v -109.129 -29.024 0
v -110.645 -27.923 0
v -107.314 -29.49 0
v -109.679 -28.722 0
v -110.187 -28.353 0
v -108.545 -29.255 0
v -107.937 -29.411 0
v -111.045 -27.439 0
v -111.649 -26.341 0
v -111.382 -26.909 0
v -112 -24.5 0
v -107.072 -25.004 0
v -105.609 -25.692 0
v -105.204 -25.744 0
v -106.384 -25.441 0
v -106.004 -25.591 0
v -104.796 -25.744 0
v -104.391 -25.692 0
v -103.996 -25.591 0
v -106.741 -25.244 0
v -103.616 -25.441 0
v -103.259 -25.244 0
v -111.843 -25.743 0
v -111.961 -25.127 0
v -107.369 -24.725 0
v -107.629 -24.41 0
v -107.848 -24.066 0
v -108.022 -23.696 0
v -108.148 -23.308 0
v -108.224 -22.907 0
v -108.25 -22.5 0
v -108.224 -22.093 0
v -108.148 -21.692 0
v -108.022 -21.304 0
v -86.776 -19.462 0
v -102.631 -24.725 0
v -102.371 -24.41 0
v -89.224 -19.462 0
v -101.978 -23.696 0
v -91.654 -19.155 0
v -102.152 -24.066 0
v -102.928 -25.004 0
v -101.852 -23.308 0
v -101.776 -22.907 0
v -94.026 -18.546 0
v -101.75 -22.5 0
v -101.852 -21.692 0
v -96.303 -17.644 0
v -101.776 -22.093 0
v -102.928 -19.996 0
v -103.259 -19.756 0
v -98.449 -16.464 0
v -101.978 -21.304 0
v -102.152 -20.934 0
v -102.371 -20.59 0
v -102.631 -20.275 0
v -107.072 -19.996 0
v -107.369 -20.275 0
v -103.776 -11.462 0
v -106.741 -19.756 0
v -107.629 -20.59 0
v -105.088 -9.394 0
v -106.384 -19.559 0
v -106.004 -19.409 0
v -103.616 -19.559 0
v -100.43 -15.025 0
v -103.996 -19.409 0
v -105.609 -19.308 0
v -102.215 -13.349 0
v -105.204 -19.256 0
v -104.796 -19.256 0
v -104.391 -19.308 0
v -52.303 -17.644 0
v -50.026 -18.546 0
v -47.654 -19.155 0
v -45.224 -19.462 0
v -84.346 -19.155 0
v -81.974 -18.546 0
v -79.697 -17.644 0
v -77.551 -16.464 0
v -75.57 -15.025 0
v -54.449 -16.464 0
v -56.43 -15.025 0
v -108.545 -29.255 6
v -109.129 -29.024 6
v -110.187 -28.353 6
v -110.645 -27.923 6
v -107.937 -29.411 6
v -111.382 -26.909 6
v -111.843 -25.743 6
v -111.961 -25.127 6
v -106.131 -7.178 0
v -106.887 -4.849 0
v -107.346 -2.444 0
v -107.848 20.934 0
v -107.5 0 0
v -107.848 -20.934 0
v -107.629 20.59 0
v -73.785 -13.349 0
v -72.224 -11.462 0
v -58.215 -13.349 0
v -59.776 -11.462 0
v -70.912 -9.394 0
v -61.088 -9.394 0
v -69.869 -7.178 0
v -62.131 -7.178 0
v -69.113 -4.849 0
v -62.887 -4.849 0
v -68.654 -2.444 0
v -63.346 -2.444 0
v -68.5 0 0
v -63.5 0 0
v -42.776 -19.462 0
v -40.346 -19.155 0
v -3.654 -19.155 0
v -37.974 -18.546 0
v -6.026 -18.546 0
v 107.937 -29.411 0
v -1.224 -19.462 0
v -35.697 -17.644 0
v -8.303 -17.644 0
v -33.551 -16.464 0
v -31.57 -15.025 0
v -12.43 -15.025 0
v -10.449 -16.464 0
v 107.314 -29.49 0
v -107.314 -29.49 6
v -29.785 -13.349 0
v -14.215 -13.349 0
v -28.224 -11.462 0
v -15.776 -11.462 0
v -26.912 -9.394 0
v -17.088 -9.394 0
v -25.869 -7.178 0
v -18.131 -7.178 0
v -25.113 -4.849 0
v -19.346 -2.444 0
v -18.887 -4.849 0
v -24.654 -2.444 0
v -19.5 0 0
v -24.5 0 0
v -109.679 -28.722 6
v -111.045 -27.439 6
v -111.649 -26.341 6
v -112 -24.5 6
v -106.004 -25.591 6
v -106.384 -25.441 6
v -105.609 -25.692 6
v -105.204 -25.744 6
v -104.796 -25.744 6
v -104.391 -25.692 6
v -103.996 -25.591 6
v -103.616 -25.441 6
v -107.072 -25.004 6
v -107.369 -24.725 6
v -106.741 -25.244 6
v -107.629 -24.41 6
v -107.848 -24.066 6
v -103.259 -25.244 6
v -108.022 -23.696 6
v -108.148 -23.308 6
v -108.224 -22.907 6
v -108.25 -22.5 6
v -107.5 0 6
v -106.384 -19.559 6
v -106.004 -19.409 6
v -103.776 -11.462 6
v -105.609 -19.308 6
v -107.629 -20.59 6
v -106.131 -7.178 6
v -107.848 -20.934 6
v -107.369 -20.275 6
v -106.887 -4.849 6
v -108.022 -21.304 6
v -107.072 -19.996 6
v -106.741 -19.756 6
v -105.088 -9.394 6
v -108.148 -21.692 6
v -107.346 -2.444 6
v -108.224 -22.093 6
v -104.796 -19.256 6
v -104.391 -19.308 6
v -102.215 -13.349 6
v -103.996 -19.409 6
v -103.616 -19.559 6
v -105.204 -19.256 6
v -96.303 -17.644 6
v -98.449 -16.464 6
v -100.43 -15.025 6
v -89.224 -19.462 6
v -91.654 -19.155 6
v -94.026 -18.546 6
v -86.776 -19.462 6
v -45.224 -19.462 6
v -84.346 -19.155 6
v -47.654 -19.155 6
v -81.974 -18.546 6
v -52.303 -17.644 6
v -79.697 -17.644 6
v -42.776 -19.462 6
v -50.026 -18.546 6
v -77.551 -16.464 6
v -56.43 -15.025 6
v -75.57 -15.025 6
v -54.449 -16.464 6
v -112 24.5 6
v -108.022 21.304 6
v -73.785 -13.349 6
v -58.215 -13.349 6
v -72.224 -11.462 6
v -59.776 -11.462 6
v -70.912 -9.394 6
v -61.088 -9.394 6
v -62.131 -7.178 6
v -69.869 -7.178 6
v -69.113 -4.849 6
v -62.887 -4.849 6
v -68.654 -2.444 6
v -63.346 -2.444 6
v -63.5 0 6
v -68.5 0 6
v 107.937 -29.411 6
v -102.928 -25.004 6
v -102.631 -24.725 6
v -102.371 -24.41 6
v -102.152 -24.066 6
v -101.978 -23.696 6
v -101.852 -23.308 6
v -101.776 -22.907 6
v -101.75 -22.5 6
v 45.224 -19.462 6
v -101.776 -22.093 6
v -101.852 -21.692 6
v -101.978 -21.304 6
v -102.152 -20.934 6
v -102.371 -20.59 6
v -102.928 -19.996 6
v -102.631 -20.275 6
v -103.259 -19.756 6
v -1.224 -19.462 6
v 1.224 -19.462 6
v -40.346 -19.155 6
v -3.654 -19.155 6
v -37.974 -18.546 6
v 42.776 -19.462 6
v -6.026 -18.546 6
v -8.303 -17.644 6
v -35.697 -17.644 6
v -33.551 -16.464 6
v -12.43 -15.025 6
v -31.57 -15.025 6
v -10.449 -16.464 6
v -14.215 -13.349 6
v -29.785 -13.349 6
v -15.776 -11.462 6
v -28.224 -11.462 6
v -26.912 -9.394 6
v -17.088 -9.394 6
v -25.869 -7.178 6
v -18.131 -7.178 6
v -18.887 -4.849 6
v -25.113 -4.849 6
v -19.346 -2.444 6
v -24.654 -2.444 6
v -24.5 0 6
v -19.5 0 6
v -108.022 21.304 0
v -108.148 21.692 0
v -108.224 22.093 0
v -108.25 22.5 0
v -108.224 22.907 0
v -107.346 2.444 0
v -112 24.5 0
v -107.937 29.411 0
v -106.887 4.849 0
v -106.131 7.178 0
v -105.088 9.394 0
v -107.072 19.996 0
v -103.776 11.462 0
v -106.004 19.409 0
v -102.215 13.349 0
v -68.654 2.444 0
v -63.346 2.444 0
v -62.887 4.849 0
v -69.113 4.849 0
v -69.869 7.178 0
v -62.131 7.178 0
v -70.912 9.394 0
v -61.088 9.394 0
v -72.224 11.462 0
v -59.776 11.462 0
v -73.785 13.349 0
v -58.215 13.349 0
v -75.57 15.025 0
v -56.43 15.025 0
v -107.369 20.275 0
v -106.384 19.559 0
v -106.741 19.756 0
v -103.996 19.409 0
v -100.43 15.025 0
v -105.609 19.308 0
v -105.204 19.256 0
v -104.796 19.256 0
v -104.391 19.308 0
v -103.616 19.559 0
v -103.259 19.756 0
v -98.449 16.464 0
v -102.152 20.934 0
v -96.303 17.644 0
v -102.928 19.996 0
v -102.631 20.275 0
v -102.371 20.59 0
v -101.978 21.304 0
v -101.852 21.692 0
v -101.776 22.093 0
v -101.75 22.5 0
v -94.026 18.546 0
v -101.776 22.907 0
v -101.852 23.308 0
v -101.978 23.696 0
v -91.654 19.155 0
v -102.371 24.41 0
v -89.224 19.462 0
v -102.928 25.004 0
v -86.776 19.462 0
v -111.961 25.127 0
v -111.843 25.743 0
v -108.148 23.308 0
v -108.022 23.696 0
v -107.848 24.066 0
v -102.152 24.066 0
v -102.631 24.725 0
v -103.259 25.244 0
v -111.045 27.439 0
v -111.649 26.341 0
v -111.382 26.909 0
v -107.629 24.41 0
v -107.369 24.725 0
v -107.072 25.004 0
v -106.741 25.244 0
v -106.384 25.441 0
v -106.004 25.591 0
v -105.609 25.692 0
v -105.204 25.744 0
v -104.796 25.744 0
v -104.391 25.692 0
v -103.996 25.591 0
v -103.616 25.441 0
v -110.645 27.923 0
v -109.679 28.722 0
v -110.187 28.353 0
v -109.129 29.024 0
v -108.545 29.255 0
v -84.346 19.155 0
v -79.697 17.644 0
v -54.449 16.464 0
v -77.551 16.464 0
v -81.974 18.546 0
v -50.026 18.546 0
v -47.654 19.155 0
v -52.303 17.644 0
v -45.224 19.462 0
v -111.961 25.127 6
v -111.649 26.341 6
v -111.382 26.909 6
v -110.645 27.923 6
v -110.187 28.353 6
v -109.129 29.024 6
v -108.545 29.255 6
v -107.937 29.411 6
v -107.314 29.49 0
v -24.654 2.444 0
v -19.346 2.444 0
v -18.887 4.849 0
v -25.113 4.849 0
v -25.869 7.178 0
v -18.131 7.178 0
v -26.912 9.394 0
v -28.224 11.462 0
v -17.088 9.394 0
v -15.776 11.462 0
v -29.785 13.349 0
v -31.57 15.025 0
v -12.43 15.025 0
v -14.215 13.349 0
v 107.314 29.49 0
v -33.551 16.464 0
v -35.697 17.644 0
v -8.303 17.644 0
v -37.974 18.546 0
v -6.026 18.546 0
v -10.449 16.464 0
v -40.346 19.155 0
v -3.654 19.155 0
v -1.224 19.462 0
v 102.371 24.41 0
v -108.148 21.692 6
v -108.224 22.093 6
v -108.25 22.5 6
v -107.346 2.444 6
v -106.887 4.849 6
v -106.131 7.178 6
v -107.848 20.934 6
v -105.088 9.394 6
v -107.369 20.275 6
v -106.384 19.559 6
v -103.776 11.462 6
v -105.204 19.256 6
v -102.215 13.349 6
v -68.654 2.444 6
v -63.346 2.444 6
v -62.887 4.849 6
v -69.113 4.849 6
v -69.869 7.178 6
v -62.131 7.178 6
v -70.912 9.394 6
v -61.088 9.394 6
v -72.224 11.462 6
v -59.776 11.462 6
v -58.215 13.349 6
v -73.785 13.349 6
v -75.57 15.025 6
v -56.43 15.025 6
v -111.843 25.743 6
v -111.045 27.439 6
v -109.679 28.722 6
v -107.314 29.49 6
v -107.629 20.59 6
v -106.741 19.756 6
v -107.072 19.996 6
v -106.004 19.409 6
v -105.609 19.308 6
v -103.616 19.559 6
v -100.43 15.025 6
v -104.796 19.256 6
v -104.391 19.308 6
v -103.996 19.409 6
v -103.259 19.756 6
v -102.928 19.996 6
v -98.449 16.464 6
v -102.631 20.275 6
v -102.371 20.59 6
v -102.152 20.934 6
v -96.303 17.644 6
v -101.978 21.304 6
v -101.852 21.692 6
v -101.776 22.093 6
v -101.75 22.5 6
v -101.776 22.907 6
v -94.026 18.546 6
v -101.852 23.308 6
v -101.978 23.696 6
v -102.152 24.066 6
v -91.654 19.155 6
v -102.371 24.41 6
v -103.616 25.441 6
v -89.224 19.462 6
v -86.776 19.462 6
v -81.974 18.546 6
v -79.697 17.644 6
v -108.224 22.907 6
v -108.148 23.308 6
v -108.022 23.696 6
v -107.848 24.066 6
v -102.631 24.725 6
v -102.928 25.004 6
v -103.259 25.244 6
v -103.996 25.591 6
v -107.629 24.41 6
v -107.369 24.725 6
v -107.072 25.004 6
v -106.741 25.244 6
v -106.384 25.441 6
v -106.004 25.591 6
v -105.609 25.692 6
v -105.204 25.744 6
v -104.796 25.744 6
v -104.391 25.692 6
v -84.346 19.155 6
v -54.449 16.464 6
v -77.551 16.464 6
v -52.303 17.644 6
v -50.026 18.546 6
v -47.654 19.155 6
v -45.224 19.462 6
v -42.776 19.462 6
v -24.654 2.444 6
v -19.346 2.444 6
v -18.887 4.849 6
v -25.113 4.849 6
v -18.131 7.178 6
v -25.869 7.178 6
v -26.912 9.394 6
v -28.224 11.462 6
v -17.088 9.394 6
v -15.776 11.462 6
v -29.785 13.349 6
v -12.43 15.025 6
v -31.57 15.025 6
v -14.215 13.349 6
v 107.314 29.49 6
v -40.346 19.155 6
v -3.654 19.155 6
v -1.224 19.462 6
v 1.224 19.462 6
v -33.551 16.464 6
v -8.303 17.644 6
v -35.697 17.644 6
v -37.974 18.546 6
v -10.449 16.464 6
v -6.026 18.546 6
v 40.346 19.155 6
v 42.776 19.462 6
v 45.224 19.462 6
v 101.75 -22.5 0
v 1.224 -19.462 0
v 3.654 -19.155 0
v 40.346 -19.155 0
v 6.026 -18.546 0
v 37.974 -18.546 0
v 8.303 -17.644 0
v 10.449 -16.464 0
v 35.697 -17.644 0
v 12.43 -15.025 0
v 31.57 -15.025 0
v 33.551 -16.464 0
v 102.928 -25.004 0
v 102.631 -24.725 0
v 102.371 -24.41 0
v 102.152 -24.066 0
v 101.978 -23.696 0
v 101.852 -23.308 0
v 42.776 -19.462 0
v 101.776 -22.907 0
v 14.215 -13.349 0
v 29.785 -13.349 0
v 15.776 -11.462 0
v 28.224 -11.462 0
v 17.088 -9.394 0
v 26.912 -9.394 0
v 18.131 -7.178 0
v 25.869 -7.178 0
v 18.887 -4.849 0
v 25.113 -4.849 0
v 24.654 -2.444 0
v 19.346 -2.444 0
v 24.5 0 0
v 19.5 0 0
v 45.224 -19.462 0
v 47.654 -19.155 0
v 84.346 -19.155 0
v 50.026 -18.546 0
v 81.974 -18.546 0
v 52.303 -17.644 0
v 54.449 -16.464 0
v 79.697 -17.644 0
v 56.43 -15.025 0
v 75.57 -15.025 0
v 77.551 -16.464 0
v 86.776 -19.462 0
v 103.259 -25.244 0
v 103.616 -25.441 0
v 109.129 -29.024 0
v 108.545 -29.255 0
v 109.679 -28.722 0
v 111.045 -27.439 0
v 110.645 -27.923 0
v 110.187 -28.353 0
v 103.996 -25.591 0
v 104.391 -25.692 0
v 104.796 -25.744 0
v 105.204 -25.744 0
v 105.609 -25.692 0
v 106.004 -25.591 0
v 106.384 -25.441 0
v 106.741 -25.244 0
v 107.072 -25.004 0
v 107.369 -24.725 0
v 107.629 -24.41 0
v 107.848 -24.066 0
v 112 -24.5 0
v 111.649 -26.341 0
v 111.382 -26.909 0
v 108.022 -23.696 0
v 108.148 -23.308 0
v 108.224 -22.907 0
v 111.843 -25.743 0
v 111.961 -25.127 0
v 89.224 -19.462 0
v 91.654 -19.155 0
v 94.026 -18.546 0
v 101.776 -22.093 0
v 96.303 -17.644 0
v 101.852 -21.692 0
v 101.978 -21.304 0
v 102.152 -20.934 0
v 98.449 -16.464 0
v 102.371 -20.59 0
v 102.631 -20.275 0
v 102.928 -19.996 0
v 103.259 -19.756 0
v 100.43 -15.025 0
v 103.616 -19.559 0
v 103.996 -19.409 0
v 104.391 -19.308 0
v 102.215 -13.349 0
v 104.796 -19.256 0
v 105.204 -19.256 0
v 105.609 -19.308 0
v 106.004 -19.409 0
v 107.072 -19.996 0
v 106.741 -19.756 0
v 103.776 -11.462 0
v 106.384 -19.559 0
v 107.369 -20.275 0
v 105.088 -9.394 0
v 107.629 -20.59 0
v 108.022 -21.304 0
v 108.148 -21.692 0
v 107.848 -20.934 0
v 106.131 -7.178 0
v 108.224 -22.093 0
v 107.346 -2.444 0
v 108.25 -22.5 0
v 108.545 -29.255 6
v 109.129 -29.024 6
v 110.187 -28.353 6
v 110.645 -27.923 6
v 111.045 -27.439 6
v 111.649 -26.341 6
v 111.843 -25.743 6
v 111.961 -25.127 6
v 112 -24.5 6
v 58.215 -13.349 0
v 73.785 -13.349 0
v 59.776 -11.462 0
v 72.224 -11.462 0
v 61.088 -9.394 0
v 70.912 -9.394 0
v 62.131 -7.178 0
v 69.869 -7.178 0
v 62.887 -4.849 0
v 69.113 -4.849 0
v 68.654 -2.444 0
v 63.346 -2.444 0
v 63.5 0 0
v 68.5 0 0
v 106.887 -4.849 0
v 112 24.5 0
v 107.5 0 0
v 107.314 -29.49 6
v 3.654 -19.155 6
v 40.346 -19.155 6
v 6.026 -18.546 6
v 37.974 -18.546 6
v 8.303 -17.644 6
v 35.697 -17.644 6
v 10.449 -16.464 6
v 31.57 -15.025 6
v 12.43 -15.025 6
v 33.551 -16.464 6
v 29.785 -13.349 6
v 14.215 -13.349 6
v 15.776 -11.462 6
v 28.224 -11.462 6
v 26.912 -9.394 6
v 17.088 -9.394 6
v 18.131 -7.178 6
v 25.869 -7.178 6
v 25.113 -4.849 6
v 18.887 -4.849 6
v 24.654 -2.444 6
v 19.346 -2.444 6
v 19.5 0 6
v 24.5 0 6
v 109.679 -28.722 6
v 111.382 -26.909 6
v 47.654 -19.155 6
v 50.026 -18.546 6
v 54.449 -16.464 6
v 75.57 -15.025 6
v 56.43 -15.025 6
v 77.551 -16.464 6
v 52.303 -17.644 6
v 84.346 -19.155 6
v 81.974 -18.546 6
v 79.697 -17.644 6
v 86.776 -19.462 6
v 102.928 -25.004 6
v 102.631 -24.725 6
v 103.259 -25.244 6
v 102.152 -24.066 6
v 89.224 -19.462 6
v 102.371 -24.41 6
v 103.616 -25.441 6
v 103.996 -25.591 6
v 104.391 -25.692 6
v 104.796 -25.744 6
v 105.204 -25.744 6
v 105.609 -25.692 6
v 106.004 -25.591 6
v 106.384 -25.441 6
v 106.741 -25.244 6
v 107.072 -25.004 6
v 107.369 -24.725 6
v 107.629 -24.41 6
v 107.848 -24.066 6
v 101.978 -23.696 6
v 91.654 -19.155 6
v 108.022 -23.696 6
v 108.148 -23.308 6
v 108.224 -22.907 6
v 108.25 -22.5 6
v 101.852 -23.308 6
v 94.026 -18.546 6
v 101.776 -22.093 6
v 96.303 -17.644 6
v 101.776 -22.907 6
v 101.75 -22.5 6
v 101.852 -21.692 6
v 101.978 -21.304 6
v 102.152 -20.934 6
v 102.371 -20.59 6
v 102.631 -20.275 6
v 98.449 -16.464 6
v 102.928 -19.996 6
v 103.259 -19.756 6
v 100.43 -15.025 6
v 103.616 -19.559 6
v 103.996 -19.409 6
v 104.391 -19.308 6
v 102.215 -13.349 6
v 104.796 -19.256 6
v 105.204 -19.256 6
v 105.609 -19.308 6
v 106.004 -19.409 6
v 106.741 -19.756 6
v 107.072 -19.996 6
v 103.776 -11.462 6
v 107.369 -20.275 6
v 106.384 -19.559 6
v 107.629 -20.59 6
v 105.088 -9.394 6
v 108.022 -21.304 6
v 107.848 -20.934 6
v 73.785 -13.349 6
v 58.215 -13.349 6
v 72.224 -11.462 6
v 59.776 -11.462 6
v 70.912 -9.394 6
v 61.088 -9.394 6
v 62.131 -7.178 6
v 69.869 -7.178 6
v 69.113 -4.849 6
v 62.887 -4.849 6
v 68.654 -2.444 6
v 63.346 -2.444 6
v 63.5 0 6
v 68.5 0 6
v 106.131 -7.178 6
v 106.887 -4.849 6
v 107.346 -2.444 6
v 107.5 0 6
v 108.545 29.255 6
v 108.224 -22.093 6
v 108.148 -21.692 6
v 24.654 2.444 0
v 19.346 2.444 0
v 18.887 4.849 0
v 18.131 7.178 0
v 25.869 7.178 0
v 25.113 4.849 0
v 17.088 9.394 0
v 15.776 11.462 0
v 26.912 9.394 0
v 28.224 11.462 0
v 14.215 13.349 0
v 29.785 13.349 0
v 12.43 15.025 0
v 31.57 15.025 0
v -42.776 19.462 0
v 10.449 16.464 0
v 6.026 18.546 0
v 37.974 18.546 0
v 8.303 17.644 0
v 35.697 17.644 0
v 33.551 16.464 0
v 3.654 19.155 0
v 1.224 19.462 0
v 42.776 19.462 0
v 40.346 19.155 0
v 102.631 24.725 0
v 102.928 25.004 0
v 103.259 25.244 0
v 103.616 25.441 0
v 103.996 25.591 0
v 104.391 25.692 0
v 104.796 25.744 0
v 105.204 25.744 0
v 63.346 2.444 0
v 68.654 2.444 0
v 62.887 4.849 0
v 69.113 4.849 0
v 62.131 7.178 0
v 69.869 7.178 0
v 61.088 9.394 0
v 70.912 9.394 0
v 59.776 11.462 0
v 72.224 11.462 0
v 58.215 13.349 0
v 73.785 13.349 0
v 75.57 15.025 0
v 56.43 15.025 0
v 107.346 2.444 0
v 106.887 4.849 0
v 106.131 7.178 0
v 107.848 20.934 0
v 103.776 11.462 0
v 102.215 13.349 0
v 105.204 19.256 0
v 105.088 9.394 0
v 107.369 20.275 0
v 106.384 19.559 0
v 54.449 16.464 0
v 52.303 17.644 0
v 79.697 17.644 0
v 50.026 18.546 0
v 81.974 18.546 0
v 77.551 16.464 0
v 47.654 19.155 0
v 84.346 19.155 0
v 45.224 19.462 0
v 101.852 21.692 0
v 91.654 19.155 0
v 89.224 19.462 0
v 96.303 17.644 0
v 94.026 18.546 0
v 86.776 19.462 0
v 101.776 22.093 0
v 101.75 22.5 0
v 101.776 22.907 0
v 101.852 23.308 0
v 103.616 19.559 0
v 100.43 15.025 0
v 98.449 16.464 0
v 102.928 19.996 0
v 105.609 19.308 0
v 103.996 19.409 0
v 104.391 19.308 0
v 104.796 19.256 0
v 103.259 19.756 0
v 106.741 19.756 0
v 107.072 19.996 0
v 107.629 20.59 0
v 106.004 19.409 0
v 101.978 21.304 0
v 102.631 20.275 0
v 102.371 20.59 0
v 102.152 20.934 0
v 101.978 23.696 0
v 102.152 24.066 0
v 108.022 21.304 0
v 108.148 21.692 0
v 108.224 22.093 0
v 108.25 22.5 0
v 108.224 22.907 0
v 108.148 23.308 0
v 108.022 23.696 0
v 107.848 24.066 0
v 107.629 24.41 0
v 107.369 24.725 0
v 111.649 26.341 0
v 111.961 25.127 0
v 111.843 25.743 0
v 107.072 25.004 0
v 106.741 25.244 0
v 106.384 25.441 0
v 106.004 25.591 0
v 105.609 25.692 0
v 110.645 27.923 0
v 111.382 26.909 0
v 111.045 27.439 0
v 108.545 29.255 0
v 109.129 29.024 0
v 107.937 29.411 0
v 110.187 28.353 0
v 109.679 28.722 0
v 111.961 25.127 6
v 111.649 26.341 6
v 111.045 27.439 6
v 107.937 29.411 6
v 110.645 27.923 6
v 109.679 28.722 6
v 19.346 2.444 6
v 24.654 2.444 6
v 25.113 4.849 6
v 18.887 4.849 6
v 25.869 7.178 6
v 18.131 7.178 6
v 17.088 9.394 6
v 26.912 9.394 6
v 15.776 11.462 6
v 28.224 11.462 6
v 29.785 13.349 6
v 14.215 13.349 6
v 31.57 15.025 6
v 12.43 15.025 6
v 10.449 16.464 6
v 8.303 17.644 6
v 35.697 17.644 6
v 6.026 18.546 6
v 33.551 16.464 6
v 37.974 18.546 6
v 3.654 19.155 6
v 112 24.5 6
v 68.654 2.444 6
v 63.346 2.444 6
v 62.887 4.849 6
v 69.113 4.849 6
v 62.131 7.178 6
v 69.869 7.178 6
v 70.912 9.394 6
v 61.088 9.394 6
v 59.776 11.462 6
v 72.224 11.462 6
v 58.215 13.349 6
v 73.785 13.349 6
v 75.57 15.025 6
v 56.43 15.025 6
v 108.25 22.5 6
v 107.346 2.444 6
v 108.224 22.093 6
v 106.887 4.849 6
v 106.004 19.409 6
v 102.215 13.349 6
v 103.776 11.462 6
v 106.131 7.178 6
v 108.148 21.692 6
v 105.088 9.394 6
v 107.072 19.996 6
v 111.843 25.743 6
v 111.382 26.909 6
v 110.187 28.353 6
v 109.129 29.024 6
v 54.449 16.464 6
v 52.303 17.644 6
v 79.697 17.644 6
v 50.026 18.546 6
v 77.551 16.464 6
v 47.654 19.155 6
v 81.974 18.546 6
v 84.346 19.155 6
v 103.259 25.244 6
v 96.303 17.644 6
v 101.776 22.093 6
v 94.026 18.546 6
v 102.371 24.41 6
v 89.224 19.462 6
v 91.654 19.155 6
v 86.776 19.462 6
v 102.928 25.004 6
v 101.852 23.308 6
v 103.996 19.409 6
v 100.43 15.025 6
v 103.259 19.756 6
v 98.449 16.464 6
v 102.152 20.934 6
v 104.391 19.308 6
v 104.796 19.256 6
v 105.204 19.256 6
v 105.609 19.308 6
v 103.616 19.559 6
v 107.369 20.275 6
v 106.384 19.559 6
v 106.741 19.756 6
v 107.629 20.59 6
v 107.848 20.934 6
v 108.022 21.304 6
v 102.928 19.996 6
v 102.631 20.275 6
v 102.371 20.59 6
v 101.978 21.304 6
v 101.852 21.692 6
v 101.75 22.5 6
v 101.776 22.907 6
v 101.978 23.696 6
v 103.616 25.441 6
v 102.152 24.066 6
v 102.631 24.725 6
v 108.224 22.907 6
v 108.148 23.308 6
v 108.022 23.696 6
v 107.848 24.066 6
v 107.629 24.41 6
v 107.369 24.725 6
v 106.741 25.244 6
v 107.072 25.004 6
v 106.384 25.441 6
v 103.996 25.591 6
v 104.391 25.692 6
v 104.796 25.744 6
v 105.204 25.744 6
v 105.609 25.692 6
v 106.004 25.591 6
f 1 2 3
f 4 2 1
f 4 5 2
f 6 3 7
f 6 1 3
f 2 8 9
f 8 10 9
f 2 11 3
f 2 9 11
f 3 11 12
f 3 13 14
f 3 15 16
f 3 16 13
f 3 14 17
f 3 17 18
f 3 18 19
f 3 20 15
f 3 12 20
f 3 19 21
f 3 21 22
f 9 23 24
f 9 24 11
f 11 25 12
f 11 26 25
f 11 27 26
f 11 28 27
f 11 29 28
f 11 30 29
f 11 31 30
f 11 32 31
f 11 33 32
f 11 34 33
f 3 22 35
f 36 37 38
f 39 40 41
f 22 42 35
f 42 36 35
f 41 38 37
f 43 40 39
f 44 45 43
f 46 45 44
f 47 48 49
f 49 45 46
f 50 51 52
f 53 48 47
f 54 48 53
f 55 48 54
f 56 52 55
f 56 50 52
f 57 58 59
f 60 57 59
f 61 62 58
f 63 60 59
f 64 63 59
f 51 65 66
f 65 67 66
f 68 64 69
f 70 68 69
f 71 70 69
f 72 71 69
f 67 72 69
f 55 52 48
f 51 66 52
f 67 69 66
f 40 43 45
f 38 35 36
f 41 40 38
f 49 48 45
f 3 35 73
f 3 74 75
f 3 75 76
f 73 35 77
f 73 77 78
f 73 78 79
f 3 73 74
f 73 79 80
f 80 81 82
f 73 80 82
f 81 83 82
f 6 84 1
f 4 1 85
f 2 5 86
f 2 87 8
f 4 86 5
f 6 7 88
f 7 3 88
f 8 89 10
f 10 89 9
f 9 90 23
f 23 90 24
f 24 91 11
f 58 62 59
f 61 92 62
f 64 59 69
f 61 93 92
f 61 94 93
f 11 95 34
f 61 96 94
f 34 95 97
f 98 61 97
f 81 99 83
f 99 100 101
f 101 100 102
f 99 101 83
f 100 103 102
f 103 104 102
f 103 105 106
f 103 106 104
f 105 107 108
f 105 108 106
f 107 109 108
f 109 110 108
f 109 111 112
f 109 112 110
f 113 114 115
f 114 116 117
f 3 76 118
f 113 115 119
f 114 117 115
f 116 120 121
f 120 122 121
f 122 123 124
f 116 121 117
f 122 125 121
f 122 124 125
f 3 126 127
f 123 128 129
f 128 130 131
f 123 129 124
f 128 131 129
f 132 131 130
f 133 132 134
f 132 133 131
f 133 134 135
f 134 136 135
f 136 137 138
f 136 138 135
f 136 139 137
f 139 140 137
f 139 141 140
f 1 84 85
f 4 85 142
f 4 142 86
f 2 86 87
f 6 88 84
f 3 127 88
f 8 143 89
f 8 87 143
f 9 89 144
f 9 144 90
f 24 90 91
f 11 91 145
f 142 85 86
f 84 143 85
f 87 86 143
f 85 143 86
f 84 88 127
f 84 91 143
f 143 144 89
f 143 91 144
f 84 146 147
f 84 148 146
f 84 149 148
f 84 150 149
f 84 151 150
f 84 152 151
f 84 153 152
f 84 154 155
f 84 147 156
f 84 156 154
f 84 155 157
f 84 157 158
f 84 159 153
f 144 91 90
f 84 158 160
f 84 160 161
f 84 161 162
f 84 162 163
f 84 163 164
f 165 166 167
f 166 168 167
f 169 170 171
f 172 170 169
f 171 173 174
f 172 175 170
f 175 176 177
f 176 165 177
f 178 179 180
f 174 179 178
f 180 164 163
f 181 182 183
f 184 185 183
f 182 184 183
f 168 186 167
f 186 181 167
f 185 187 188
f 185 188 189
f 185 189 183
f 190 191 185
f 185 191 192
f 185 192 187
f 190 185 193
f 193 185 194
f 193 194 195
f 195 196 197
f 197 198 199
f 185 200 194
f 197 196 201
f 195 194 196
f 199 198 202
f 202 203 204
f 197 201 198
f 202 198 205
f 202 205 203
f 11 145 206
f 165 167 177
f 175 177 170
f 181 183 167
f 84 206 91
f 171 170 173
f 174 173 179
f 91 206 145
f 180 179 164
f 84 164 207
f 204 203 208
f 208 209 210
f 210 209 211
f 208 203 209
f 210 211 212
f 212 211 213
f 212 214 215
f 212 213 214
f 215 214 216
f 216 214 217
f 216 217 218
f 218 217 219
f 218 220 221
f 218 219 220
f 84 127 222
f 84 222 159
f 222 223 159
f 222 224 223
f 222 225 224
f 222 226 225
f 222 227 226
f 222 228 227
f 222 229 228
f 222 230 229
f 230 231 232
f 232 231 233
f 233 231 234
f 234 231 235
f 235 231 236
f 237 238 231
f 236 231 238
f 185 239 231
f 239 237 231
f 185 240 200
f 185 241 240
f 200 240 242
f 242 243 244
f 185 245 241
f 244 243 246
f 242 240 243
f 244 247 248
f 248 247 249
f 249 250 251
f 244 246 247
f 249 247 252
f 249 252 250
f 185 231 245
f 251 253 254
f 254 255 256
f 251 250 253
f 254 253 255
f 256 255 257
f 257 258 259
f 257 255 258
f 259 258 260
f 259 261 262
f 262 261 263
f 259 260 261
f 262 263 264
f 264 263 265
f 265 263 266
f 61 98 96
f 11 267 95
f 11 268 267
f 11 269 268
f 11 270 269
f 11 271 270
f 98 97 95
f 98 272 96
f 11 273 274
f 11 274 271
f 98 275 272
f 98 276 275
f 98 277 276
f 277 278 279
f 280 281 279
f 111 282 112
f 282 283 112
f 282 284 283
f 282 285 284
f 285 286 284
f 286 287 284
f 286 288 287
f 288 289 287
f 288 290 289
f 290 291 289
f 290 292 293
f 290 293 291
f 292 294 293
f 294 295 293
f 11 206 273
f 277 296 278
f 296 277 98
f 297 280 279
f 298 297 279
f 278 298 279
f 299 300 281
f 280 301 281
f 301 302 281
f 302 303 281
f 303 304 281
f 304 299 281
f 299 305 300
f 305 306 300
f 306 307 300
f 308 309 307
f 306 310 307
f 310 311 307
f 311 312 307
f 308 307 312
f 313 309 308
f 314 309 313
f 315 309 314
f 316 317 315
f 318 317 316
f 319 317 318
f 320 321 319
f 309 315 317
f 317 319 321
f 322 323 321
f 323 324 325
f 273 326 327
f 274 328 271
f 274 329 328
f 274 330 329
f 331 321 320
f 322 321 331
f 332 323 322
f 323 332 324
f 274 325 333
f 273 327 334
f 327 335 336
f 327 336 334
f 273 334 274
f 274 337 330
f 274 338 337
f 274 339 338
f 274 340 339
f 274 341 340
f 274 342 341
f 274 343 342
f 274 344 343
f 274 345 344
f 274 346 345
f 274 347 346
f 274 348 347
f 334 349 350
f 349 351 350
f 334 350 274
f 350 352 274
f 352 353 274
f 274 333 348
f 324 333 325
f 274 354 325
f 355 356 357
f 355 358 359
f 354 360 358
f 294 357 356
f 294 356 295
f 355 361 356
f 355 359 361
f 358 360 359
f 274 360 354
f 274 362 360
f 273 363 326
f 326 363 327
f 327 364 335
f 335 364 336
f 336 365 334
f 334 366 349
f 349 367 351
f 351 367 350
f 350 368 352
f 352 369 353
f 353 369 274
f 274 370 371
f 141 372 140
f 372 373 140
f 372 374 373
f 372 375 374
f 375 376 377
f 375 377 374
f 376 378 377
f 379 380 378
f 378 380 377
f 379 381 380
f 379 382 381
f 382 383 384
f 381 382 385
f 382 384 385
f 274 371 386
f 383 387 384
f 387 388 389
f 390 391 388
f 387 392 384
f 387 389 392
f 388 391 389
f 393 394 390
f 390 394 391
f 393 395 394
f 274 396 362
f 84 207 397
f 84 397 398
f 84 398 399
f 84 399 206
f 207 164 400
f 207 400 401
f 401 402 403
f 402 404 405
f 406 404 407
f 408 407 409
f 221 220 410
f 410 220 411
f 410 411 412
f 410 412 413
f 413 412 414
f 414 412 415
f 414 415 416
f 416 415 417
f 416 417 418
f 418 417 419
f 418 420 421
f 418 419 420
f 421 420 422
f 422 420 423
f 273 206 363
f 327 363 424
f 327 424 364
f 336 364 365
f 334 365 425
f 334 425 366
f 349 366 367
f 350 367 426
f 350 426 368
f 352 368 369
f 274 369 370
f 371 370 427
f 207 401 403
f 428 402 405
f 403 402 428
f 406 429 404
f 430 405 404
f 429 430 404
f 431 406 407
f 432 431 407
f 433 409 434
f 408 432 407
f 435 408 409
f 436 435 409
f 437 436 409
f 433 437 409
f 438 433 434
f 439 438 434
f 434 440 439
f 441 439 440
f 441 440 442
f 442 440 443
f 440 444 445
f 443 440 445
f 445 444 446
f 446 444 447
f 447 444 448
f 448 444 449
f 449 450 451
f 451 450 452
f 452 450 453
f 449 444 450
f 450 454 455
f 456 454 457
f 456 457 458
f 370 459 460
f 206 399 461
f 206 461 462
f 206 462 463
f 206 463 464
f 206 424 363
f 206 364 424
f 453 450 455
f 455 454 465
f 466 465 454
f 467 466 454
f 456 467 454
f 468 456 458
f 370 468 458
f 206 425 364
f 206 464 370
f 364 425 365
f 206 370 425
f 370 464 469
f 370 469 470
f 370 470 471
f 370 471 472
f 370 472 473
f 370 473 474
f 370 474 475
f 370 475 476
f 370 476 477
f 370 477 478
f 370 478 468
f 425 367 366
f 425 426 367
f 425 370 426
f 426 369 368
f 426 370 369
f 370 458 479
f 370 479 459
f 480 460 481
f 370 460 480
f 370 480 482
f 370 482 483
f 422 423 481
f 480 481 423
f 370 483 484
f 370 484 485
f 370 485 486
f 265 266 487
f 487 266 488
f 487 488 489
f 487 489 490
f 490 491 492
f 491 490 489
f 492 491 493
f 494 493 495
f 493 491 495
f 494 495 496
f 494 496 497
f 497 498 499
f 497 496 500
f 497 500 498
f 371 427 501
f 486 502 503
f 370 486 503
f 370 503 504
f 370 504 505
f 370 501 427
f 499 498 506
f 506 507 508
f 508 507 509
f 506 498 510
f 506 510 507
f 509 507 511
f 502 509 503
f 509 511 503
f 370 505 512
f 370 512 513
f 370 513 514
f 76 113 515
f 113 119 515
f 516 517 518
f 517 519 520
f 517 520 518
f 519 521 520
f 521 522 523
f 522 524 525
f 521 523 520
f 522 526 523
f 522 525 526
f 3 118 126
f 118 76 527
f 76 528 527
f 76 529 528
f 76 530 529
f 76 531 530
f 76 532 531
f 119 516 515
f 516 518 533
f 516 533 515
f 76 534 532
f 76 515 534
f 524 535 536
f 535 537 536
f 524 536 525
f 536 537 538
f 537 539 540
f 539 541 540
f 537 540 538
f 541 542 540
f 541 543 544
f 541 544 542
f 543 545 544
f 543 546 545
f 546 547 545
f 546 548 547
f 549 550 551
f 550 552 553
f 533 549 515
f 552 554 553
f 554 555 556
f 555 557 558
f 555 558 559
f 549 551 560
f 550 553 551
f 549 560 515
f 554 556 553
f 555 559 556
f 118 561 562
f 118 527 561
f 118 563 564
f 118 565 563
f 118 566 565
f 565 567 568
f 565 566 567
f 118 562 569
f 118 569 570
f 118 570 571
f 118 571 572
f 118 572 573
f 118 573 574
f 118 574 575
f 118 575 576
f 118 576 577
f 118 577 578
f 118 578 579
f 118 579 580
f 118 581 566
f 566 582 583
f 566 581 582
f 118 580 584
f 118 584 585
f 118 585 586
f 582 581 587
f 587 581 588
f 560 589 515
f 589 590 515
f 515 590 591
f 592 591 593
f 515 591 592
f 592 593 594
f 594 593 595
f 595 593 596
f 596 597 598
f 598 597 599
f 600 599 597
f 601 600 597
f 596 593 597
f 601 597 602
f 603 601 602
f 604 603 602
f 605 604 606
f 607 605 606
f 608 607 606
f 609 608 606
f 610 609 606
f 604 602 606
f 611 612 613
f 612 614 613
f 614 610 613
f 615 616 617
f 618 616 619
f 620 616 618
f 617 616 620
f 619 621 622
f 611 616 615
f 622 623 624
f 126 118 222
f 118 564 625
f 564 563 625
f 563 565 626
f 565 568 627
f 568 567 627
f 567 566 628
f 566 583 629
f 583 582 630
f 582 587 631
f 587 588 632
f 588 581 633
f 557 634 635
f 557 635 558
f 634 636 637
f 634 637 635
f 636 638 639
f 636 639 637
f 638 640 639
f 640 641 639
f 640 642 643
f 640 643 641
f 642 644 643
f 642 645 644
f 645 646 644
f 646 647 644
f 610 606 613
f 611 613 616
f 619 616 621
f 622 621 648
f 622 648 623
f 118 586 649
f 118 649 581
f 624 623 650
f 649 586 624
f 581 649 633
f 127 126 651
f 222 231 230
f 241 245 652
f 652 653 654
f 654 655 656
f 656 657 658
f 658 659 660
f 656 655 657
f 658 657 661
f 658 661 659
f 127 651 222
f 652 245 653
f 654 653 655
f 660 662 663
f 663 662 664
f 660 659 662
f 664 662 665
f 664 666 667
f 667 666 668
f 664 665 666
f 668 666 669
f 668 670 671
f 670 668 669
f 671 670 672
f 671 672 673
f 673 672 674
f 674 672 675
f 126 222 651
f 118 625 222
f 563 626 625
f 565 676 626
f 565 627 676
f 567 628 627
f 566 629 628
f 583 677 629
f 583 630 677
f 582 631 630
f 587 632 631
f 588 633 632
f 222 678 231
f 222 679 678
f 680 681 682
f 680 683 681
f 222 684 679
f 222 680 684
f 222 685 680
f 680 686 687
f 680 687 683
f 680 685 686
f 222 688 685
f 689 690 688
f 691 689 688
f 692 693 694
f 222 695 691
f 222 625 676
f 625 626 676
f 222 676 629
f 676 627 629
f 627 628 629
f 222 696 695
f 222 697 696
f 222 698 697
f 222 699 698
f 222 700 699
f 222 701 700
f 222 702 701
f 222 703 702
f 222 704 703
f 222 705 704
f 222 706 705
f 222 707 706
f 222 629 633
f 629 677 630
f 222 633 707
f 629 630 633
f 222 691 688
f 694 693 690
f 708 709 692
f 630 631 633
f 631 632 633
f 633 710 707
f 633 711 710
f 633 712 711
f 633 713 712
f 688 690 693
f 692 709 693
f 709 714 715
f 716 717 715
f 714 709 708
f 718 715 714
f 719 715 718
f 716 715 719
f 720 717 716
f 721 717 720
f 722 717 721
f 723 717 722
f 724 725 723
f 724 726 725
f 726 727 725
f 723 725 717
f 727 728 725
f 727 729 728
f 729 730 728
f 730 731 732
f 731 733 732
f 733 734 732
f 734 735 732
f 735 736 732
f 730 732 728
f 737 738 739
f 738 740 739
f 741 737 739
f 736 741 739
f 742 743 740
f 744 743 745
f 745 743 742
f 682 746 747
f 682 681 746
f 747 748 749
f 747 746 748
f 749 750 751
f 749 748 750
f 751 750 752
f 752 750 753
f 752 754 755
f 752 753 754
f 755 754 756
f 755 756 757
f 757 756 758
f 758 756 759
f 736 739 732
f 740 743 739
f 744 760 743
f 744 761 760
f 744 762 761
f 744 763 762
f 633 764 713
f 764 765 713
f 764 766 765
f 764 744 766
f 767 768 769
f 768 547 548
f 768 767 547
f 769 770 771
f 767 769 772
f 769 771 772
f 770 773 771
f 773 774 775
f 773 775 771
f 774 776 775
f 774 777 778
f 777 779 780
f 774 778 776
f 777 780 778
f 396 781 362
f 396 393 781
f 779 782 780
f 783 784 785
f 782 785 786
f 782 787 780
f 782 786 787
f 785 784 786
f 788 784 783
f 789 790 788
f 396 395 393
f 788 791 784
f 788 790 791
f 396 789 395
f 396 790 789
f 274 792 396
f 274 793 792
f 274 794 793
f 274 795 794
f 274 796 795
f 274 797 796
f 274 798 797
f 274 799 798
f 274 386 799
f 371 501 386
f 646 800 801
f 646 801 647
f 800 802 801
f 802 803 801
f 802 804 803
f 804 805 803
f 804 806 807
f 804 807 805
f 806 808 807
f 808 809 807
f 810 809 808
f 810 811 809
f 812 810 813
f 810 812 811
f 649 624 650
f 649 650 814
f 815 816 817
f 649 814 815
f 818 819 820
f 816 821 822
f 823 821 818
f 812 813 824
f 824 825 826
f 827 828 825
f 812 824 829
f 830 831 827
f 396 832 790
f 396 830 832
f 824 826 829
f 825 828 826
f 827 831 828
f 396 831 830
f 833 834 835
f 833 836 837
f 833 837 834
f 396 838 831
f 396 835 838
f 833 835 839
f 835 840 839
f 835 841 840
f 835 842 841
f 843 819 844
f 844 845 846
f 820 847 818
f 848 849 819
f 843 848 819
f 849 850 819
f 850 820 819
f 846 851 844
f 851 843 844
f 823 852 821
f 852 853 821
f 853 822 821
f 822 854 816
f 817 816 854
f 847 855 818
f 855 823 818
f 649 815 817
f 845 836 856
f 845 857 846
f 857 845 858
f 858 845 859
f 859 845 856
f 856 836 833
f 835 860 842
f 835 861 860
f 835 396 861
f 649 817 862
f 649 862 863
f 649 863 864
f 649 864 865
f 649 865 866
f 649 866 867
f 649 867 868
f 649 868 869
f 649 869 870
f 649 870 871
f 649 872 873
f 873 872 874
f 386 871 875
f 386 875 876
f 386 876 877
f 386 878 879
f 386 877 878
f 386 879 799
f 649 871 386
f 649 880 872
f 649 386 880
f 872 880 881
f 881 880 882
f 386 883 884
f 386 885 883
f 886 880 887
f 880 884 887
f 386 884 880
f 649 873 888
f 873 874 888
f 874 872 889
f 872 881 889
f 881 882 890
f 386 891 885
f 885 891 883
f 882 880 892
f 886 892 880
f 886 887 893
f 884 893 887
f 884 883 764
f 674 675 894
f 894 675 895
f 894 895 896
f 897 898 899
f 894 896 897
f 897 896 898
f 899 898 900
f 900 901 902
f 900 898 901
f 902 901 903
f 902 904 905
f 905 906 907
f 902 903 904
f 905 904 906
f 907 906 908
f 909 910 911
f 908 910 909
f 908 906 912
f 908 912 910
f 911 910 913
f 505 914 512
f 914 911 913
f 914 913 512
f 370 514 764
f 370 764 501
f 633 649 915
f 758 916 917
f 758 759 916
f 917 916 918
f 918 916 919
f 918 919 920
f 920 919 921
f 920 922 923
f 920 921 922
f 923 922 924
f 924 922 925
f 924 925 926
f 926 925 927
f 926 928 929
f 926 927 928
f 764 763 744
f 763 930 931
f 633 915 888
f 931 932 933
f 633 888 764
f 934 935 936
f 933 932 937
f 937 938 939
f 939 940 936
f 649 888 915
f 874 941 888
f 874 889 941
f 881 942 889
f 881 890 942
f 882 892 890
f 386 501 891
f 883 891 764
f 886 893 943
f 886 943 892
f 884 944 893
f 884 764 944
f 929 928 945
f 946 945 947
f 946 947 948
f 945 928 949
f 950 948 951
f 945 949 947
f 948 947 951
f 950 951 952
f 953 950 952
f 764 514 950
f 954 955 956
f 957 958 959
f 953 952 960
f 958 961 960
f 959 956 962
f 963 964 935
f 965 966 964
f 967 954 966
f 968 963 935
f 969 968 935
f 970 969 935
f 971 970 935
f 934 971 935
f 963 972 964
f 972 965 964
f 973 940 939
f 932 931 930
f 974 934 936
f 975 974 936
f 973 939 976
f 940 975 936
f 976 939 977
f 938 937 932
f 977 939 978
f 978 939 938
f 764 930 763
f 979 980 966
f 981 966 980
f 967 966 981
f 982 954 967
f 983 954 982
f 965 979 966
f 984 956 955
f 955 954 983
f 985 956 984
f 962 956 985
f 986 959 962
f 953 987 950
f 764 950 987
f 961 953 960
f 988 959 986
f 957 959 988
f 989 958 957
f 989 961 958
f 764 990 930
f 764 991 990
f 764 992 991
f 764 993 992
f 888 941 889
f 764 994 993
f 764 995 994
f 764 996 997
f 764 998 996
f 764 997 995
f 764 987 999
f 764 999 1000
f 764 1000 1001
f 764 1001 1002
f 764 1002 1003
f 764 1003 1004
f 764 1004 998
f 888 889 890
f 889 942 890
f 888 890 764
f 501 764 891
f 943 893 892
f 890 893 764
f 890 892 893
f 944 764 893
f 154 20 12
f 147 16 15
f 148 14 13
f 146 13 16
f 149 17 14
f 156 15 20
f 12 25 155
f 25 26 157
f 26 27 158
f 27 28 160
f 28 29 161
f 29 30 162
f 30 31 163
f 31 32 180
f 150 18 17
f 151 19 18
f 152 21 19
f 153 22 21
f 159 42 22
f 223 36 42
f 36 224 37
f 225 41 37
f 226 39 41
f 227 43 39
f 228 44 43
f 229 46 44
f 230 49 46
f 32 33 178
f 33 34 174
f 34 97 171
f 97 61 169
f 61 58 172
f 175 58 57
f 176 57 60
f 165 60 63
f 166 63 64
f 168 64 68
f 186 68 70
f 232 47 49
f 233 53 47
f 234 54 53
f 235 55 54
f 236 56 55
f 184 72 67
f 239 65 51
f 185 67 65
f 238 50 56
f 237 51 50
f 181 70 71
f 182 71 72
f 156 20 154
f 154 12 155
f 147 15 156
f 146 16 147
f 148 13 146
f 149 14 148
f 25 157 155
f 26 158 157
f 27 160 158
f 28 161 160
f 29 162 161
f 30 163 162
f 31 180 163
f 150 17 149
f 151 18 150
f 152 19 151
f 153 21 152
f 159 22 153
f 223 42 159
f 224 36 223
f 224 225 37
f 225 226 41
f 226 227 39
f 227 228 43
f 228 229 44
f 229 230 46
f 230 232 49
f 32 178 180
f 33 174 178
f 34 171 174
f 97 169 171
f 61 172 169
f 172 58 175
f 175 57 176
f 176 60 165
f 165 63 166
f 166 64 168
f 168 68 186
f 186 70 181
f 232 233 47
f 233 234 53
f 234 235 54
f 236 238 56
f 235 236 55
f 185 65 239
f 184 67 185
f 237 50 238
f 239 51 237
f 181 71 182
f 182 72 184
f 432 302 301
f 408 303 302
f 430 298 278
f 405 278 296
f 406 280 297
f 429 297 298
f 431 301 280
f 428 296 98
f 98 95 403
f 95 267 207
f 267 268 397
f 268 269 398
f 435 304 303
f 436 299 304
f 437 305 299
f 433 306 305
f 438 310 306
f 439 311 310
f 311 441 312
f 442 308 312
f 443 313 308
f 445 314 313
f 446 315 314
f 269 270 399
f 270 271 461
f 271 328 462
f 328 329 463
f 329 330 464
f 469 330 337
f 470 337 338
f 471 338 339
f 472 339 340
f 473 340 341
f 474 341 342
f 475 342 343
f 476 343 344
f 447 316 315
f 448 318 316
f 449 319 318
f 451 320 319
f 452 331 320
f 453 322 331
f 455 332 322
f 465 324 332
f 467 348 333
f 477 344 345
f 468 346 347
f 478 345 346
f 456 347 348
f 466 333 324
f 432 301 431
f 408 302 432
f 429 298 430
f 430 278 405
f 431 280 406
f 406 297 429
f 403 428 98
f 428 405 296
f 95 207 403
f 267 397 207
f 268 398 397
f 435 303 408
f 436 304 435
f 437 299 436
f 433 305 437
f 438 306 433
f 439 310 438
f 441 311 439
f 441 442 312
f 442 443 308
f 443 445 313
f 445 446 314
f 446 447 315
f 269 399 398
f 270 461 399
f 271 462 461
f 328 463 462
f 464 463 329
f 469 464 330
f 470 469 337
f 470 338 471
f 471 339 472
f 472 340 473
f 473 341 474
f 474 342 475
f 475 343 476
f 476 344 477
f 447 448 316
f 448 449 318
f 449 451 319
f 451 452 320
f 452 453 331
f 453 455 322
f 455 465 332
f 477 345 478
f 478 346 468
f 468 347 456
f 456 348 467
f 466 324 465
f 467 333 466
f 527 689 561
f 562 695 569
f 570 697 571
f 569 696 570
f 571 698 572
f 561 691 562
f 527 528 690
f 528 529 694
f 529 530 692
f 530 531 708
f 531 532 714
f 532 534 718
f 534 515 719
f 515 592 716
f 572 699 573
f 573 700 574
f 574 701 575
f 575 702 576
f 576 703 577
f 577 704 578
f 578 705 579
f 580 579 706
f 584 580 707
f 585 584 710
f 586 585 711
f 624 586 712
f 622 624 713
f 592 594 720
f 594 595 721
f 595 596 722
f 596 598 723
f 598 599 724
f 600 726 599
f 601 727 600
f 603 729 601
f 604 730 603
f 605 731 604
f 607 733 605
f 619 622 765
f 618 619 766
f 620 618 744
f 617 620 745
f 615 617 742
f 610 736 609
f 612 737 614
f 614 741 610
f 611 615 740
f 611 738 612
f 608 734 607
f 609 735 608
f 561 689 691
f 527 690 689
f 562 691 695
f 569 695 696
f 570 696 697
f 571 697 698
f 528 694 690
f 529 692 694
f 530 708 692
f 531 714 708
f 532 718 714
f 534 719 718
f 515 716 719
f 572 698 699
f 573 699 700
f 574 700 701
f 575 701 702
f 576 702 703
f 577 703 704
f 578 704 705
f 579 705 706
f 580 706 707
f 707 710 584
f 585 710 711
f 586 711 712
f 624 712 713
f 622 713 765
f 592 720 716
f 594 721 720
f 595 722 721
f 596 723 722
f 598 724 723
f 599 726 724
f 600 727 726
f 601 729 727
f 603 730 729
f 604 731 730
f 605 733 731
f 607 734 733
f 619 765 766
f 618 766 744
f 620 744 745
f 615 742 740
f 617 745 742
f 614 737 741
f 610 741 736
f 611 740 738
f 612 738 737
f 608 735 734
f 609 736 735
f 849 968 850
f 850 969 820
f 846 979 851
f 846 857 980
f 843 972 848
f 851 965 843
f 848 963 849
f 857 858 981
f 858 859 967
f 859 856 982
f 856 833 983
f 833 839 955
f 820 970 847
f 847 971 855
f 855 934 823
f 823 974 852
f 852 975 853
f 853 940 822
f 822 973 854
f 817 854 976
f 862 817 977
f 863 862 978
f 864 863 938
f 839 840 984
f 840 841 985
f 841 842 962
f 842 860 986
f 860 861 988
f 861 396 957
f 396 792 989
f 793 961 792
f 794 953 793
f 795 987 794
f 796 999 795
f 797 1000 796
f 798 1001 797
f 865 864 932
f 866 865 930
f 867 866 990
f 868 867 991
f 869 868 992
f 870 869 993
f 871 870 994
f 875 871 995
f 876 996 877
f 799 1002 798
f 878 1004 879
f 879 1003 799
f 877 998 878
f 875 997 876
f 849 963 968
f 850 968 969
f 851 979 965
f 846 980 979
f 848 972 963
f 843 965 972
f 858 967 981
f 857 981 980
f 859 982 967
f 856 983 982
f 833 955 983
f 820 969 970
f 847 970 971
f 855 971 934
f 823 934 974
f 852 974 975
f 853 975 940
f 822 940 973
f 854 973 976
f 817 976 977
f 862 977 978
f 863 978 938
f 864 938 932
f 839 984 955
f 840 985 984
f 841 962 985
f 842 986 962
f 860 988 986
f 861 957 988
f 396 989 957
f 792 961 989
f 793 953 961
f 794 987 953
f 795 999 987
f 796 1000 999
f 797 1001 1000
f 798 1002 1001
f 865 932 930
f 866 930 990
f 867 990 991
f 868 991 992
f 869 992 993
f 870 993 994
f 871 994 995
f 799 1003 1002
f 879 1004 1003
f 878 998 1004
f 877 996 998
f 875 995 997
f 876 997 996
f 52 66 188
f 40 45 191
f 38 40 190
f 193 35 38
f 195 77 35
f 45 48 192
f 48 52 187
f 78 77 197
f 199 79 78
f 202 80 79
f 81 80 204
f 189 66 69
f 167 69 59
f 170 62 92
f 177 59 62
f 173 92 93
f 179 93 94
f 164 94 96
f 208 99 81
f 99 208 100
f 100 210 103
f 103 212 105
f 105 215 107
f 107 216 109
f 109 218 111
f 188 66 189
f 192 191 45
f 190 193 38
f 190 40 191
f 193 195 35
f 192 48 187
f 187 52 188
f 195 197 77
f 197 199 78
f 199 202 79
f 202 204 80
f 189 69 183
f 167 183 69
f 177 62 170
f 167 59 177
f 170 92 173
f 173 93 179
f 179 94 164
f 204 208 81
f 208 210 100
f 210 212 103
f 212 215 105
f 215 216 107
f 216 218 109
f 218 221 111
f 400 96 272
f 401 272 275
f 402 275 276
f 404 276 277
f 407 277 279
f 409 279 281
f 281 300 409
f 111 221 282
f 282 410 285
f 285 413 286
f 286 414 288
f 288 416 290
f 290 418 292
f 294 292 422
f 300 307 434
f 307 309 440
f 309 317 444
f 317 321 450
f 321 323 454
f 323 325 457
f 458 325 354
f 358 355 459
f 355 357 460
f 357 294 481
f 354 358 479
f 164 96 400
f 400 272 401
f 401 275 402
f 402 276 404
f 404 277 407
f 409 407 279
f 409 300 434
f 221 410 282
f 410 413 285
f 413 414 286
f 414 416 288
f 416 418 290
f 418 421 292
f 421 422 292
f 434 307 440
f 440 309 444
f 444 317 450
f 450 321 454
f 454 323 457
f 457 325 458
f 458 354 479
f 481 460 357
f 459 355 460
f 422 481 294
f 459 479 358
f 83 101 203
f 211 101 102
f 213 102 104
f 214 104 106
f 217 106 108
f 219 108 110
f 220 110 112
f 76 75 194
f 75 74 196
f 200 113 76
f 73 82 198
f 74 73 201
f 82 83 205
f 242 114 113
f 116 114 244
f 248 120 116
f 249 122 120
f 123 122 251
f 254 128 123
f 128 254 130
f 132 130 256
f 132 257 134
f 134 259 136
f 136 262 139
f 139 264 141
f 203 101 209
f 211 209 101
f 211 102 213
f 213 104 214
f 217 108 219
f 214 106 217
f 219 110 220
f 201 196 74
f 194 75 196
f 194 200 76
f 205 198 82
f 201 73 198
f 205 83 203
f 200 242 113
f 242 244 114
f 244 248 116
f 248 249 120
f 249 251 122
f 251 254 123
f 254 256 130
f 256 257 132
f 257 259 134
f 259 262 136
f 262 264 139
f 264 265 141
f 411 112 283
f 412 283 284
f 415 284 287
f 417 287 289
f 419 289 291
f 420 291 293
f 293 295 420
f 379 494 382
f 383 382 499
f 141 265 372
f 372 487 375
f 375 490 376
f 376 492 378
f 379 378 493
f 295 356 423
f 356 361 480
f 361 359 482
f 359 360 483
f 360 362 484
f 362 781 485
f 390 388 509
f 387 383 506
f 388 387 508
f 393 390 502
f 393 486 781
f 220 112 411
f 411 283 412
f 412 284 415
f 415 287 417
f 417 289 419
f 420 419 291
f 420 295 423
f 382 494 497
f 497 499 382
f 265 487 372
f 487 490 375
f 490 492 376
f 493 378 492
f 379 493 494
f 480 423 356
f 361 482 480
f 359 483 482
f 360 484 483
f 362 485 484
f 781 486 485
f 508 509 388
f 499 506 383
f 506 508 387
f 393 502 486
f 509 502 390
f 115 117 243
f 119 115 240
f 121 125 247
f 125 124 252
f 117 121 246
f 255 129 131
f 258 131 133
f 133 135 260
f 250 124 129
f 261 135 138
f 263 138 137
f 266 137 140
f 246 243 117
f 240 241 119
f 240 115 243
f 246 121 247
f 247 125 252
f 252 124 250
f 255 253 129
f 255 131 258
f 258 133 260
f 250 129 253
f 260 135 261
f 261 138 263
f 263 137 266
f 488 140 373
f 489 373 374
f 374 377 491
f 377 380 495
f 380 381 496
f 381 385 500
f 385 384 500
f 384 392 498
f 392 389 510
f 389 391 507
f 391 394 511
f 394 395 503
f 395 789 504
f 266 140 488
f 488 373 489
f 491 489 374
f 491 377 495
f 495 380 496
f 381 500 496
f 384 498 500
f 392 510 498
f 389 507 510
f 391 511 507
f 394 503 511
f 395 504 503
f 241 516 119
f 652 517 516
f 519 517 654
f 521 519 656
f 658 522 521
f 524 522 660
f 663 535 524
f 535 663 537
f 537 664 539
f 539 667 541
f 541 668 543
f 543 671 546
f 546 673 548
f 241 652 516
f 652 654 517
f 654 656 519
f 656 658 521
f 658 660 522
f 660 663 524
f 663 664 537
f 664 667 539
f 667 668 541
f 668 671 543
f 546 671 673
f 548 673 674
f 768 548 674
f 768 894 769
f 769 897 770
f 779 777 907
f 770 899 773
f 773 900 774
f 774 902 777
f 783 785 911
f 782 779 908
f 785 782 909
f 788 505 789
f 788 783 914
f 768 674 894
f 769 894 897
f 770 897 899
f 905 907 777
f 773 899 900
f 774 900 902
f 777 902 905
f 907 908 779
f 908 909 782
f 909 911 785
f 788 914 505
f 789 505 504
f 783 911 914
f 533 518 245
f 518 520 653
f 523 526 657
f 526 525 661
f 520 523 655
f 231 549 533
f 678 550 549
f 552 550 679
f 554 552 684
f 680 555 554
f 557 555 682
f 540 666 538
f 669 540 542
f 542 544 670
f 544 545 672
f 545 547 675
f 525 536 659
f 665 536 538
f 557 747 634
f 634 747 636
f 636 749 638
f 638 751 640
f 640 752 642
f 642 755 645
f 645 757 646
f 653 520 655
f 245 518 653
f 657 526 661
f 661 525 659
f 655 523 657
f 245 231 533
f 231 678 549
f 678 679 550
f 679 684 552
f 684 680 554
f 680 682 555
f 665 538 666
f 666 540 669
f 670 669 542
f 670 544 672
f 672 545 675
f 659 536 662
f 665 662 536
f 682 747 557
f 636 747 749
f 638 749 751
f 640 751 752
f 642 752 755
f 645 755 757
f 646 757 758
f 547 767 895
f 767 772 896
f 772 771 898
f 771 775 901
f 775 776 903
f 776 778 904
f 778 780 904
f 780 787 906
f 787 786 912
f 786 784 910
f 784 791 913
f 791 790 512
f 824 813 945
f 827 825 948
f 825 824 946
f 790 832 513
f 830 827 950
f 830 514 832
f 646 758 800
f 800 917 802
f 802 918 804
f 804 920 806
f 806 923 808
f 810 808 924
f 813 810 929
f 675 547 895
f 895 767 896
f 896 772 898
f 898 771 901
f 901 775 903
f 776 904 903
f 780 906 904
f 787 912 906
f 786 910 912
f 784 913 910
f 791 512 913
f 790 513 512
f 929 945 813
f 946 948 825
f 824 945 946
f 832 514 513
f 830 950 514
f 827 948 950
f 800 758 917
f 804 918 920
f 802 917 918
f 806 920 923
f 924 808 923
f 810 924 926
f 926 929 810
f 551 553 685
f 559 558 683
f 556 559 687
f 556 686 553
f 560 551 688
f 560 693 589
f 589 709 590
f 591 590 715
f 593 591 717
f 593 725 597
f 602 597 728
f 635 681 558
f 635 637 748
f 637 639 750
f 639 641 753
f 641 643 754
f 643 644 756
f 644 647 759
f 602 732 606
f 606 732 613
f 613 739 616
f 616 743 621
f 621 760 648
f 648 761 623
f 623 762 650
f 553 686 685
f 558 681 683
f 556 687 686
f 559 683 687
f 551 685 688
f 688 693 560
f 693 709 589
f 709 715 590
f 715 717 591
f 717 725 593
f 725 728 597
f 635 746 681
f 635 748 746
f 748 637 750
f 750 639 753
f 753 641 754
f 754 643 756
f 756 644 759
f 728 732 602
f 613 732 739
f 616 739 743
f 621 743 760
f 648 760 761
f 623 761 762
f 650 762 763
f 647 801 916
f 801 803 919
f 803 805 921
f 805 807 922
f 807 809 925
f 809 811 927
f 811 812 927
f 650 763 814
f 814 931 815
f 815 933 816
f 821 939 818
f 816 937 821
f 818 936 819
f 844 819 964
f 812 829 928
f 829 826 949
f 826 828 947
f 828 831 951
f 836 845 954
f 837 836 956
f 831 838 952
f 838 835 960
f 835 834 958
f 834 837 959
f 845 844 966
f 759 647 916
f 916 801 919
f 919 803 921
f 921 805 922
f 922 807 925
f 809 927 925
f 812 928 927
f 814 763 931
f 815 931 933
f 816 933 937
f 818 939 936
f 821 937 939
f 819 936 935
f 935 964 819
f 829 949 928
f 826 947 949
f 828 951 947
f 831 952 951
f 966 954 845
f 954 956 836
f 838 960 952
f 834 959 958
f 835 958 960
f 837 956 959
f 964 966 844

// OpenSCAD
$fn = 50;

difference() {
	union() {
		hull() {
			translate(v = [-107.0, 24.5, 0]) {
				cylinder(h = 6, r = 5);
			}
			translate(v = [107.0, 24.5, 0]) {
				cylinder(h = 6, r = 5);
			}
			translate(v = [-107.0, -24.5, 0]) {
				cylinder(h = 6, r = 5);
			}
			translate(v = [107.0, -24.5, 0]) {
				cylinder(h = 6, r = 5);
			}
		}
	}
	union() {
		translate(v = [-105.0, -22.5, -100.0]) {
			cylinder(h = 200, r = 3.25);
		}
		translate(v = [-105.0, 22.5, -100.0]) {
			cylinder(h = 200, r = 3.25);
		}
		translate(v = [105.0, -22.5, -100.0]) {
			cylinder(h = 200, r = 3.25);
		}
		translate(v = [105.0, 22.5, -100.0]) {
			cylinder(h = 200, r = 3.25);
		}
		translate(v = [-105.0, -22.5, -100.0]) {
			cylinder(h = 200, r = 1.8);
		}
		translate(v = [-105.0, 22.5, -100.0]) {
			cylinder(h = 200, r = 1.8);
		}
		translate(v = [105.0, -22.5, -100.0]) {
			cylinder(h = 200, r = 1.8);
		}
		translate(v = [105.0, 22.5, -100.0]) {
			cylinder(h = 200, r = 1.8);
		}
		translate(v = [-88.0, 0, 0.0]) {
			cylinder(h = 6, r = 19.5);
		}
		translate(v = [-44.0, 0, 0.0]) {
			cylinder(h = 6, r = 19.5);
		}
		cylinder(h = 6, r = 19.5);
		translate(v = [44.0, 0, 0.0]) {
			cylinder(h = 6, r = 19.5);
		}
		translate(v = [88.0, 0, 0.0]) {
			cylinder(h = 6, r = 19.5);
		}
	}
}
